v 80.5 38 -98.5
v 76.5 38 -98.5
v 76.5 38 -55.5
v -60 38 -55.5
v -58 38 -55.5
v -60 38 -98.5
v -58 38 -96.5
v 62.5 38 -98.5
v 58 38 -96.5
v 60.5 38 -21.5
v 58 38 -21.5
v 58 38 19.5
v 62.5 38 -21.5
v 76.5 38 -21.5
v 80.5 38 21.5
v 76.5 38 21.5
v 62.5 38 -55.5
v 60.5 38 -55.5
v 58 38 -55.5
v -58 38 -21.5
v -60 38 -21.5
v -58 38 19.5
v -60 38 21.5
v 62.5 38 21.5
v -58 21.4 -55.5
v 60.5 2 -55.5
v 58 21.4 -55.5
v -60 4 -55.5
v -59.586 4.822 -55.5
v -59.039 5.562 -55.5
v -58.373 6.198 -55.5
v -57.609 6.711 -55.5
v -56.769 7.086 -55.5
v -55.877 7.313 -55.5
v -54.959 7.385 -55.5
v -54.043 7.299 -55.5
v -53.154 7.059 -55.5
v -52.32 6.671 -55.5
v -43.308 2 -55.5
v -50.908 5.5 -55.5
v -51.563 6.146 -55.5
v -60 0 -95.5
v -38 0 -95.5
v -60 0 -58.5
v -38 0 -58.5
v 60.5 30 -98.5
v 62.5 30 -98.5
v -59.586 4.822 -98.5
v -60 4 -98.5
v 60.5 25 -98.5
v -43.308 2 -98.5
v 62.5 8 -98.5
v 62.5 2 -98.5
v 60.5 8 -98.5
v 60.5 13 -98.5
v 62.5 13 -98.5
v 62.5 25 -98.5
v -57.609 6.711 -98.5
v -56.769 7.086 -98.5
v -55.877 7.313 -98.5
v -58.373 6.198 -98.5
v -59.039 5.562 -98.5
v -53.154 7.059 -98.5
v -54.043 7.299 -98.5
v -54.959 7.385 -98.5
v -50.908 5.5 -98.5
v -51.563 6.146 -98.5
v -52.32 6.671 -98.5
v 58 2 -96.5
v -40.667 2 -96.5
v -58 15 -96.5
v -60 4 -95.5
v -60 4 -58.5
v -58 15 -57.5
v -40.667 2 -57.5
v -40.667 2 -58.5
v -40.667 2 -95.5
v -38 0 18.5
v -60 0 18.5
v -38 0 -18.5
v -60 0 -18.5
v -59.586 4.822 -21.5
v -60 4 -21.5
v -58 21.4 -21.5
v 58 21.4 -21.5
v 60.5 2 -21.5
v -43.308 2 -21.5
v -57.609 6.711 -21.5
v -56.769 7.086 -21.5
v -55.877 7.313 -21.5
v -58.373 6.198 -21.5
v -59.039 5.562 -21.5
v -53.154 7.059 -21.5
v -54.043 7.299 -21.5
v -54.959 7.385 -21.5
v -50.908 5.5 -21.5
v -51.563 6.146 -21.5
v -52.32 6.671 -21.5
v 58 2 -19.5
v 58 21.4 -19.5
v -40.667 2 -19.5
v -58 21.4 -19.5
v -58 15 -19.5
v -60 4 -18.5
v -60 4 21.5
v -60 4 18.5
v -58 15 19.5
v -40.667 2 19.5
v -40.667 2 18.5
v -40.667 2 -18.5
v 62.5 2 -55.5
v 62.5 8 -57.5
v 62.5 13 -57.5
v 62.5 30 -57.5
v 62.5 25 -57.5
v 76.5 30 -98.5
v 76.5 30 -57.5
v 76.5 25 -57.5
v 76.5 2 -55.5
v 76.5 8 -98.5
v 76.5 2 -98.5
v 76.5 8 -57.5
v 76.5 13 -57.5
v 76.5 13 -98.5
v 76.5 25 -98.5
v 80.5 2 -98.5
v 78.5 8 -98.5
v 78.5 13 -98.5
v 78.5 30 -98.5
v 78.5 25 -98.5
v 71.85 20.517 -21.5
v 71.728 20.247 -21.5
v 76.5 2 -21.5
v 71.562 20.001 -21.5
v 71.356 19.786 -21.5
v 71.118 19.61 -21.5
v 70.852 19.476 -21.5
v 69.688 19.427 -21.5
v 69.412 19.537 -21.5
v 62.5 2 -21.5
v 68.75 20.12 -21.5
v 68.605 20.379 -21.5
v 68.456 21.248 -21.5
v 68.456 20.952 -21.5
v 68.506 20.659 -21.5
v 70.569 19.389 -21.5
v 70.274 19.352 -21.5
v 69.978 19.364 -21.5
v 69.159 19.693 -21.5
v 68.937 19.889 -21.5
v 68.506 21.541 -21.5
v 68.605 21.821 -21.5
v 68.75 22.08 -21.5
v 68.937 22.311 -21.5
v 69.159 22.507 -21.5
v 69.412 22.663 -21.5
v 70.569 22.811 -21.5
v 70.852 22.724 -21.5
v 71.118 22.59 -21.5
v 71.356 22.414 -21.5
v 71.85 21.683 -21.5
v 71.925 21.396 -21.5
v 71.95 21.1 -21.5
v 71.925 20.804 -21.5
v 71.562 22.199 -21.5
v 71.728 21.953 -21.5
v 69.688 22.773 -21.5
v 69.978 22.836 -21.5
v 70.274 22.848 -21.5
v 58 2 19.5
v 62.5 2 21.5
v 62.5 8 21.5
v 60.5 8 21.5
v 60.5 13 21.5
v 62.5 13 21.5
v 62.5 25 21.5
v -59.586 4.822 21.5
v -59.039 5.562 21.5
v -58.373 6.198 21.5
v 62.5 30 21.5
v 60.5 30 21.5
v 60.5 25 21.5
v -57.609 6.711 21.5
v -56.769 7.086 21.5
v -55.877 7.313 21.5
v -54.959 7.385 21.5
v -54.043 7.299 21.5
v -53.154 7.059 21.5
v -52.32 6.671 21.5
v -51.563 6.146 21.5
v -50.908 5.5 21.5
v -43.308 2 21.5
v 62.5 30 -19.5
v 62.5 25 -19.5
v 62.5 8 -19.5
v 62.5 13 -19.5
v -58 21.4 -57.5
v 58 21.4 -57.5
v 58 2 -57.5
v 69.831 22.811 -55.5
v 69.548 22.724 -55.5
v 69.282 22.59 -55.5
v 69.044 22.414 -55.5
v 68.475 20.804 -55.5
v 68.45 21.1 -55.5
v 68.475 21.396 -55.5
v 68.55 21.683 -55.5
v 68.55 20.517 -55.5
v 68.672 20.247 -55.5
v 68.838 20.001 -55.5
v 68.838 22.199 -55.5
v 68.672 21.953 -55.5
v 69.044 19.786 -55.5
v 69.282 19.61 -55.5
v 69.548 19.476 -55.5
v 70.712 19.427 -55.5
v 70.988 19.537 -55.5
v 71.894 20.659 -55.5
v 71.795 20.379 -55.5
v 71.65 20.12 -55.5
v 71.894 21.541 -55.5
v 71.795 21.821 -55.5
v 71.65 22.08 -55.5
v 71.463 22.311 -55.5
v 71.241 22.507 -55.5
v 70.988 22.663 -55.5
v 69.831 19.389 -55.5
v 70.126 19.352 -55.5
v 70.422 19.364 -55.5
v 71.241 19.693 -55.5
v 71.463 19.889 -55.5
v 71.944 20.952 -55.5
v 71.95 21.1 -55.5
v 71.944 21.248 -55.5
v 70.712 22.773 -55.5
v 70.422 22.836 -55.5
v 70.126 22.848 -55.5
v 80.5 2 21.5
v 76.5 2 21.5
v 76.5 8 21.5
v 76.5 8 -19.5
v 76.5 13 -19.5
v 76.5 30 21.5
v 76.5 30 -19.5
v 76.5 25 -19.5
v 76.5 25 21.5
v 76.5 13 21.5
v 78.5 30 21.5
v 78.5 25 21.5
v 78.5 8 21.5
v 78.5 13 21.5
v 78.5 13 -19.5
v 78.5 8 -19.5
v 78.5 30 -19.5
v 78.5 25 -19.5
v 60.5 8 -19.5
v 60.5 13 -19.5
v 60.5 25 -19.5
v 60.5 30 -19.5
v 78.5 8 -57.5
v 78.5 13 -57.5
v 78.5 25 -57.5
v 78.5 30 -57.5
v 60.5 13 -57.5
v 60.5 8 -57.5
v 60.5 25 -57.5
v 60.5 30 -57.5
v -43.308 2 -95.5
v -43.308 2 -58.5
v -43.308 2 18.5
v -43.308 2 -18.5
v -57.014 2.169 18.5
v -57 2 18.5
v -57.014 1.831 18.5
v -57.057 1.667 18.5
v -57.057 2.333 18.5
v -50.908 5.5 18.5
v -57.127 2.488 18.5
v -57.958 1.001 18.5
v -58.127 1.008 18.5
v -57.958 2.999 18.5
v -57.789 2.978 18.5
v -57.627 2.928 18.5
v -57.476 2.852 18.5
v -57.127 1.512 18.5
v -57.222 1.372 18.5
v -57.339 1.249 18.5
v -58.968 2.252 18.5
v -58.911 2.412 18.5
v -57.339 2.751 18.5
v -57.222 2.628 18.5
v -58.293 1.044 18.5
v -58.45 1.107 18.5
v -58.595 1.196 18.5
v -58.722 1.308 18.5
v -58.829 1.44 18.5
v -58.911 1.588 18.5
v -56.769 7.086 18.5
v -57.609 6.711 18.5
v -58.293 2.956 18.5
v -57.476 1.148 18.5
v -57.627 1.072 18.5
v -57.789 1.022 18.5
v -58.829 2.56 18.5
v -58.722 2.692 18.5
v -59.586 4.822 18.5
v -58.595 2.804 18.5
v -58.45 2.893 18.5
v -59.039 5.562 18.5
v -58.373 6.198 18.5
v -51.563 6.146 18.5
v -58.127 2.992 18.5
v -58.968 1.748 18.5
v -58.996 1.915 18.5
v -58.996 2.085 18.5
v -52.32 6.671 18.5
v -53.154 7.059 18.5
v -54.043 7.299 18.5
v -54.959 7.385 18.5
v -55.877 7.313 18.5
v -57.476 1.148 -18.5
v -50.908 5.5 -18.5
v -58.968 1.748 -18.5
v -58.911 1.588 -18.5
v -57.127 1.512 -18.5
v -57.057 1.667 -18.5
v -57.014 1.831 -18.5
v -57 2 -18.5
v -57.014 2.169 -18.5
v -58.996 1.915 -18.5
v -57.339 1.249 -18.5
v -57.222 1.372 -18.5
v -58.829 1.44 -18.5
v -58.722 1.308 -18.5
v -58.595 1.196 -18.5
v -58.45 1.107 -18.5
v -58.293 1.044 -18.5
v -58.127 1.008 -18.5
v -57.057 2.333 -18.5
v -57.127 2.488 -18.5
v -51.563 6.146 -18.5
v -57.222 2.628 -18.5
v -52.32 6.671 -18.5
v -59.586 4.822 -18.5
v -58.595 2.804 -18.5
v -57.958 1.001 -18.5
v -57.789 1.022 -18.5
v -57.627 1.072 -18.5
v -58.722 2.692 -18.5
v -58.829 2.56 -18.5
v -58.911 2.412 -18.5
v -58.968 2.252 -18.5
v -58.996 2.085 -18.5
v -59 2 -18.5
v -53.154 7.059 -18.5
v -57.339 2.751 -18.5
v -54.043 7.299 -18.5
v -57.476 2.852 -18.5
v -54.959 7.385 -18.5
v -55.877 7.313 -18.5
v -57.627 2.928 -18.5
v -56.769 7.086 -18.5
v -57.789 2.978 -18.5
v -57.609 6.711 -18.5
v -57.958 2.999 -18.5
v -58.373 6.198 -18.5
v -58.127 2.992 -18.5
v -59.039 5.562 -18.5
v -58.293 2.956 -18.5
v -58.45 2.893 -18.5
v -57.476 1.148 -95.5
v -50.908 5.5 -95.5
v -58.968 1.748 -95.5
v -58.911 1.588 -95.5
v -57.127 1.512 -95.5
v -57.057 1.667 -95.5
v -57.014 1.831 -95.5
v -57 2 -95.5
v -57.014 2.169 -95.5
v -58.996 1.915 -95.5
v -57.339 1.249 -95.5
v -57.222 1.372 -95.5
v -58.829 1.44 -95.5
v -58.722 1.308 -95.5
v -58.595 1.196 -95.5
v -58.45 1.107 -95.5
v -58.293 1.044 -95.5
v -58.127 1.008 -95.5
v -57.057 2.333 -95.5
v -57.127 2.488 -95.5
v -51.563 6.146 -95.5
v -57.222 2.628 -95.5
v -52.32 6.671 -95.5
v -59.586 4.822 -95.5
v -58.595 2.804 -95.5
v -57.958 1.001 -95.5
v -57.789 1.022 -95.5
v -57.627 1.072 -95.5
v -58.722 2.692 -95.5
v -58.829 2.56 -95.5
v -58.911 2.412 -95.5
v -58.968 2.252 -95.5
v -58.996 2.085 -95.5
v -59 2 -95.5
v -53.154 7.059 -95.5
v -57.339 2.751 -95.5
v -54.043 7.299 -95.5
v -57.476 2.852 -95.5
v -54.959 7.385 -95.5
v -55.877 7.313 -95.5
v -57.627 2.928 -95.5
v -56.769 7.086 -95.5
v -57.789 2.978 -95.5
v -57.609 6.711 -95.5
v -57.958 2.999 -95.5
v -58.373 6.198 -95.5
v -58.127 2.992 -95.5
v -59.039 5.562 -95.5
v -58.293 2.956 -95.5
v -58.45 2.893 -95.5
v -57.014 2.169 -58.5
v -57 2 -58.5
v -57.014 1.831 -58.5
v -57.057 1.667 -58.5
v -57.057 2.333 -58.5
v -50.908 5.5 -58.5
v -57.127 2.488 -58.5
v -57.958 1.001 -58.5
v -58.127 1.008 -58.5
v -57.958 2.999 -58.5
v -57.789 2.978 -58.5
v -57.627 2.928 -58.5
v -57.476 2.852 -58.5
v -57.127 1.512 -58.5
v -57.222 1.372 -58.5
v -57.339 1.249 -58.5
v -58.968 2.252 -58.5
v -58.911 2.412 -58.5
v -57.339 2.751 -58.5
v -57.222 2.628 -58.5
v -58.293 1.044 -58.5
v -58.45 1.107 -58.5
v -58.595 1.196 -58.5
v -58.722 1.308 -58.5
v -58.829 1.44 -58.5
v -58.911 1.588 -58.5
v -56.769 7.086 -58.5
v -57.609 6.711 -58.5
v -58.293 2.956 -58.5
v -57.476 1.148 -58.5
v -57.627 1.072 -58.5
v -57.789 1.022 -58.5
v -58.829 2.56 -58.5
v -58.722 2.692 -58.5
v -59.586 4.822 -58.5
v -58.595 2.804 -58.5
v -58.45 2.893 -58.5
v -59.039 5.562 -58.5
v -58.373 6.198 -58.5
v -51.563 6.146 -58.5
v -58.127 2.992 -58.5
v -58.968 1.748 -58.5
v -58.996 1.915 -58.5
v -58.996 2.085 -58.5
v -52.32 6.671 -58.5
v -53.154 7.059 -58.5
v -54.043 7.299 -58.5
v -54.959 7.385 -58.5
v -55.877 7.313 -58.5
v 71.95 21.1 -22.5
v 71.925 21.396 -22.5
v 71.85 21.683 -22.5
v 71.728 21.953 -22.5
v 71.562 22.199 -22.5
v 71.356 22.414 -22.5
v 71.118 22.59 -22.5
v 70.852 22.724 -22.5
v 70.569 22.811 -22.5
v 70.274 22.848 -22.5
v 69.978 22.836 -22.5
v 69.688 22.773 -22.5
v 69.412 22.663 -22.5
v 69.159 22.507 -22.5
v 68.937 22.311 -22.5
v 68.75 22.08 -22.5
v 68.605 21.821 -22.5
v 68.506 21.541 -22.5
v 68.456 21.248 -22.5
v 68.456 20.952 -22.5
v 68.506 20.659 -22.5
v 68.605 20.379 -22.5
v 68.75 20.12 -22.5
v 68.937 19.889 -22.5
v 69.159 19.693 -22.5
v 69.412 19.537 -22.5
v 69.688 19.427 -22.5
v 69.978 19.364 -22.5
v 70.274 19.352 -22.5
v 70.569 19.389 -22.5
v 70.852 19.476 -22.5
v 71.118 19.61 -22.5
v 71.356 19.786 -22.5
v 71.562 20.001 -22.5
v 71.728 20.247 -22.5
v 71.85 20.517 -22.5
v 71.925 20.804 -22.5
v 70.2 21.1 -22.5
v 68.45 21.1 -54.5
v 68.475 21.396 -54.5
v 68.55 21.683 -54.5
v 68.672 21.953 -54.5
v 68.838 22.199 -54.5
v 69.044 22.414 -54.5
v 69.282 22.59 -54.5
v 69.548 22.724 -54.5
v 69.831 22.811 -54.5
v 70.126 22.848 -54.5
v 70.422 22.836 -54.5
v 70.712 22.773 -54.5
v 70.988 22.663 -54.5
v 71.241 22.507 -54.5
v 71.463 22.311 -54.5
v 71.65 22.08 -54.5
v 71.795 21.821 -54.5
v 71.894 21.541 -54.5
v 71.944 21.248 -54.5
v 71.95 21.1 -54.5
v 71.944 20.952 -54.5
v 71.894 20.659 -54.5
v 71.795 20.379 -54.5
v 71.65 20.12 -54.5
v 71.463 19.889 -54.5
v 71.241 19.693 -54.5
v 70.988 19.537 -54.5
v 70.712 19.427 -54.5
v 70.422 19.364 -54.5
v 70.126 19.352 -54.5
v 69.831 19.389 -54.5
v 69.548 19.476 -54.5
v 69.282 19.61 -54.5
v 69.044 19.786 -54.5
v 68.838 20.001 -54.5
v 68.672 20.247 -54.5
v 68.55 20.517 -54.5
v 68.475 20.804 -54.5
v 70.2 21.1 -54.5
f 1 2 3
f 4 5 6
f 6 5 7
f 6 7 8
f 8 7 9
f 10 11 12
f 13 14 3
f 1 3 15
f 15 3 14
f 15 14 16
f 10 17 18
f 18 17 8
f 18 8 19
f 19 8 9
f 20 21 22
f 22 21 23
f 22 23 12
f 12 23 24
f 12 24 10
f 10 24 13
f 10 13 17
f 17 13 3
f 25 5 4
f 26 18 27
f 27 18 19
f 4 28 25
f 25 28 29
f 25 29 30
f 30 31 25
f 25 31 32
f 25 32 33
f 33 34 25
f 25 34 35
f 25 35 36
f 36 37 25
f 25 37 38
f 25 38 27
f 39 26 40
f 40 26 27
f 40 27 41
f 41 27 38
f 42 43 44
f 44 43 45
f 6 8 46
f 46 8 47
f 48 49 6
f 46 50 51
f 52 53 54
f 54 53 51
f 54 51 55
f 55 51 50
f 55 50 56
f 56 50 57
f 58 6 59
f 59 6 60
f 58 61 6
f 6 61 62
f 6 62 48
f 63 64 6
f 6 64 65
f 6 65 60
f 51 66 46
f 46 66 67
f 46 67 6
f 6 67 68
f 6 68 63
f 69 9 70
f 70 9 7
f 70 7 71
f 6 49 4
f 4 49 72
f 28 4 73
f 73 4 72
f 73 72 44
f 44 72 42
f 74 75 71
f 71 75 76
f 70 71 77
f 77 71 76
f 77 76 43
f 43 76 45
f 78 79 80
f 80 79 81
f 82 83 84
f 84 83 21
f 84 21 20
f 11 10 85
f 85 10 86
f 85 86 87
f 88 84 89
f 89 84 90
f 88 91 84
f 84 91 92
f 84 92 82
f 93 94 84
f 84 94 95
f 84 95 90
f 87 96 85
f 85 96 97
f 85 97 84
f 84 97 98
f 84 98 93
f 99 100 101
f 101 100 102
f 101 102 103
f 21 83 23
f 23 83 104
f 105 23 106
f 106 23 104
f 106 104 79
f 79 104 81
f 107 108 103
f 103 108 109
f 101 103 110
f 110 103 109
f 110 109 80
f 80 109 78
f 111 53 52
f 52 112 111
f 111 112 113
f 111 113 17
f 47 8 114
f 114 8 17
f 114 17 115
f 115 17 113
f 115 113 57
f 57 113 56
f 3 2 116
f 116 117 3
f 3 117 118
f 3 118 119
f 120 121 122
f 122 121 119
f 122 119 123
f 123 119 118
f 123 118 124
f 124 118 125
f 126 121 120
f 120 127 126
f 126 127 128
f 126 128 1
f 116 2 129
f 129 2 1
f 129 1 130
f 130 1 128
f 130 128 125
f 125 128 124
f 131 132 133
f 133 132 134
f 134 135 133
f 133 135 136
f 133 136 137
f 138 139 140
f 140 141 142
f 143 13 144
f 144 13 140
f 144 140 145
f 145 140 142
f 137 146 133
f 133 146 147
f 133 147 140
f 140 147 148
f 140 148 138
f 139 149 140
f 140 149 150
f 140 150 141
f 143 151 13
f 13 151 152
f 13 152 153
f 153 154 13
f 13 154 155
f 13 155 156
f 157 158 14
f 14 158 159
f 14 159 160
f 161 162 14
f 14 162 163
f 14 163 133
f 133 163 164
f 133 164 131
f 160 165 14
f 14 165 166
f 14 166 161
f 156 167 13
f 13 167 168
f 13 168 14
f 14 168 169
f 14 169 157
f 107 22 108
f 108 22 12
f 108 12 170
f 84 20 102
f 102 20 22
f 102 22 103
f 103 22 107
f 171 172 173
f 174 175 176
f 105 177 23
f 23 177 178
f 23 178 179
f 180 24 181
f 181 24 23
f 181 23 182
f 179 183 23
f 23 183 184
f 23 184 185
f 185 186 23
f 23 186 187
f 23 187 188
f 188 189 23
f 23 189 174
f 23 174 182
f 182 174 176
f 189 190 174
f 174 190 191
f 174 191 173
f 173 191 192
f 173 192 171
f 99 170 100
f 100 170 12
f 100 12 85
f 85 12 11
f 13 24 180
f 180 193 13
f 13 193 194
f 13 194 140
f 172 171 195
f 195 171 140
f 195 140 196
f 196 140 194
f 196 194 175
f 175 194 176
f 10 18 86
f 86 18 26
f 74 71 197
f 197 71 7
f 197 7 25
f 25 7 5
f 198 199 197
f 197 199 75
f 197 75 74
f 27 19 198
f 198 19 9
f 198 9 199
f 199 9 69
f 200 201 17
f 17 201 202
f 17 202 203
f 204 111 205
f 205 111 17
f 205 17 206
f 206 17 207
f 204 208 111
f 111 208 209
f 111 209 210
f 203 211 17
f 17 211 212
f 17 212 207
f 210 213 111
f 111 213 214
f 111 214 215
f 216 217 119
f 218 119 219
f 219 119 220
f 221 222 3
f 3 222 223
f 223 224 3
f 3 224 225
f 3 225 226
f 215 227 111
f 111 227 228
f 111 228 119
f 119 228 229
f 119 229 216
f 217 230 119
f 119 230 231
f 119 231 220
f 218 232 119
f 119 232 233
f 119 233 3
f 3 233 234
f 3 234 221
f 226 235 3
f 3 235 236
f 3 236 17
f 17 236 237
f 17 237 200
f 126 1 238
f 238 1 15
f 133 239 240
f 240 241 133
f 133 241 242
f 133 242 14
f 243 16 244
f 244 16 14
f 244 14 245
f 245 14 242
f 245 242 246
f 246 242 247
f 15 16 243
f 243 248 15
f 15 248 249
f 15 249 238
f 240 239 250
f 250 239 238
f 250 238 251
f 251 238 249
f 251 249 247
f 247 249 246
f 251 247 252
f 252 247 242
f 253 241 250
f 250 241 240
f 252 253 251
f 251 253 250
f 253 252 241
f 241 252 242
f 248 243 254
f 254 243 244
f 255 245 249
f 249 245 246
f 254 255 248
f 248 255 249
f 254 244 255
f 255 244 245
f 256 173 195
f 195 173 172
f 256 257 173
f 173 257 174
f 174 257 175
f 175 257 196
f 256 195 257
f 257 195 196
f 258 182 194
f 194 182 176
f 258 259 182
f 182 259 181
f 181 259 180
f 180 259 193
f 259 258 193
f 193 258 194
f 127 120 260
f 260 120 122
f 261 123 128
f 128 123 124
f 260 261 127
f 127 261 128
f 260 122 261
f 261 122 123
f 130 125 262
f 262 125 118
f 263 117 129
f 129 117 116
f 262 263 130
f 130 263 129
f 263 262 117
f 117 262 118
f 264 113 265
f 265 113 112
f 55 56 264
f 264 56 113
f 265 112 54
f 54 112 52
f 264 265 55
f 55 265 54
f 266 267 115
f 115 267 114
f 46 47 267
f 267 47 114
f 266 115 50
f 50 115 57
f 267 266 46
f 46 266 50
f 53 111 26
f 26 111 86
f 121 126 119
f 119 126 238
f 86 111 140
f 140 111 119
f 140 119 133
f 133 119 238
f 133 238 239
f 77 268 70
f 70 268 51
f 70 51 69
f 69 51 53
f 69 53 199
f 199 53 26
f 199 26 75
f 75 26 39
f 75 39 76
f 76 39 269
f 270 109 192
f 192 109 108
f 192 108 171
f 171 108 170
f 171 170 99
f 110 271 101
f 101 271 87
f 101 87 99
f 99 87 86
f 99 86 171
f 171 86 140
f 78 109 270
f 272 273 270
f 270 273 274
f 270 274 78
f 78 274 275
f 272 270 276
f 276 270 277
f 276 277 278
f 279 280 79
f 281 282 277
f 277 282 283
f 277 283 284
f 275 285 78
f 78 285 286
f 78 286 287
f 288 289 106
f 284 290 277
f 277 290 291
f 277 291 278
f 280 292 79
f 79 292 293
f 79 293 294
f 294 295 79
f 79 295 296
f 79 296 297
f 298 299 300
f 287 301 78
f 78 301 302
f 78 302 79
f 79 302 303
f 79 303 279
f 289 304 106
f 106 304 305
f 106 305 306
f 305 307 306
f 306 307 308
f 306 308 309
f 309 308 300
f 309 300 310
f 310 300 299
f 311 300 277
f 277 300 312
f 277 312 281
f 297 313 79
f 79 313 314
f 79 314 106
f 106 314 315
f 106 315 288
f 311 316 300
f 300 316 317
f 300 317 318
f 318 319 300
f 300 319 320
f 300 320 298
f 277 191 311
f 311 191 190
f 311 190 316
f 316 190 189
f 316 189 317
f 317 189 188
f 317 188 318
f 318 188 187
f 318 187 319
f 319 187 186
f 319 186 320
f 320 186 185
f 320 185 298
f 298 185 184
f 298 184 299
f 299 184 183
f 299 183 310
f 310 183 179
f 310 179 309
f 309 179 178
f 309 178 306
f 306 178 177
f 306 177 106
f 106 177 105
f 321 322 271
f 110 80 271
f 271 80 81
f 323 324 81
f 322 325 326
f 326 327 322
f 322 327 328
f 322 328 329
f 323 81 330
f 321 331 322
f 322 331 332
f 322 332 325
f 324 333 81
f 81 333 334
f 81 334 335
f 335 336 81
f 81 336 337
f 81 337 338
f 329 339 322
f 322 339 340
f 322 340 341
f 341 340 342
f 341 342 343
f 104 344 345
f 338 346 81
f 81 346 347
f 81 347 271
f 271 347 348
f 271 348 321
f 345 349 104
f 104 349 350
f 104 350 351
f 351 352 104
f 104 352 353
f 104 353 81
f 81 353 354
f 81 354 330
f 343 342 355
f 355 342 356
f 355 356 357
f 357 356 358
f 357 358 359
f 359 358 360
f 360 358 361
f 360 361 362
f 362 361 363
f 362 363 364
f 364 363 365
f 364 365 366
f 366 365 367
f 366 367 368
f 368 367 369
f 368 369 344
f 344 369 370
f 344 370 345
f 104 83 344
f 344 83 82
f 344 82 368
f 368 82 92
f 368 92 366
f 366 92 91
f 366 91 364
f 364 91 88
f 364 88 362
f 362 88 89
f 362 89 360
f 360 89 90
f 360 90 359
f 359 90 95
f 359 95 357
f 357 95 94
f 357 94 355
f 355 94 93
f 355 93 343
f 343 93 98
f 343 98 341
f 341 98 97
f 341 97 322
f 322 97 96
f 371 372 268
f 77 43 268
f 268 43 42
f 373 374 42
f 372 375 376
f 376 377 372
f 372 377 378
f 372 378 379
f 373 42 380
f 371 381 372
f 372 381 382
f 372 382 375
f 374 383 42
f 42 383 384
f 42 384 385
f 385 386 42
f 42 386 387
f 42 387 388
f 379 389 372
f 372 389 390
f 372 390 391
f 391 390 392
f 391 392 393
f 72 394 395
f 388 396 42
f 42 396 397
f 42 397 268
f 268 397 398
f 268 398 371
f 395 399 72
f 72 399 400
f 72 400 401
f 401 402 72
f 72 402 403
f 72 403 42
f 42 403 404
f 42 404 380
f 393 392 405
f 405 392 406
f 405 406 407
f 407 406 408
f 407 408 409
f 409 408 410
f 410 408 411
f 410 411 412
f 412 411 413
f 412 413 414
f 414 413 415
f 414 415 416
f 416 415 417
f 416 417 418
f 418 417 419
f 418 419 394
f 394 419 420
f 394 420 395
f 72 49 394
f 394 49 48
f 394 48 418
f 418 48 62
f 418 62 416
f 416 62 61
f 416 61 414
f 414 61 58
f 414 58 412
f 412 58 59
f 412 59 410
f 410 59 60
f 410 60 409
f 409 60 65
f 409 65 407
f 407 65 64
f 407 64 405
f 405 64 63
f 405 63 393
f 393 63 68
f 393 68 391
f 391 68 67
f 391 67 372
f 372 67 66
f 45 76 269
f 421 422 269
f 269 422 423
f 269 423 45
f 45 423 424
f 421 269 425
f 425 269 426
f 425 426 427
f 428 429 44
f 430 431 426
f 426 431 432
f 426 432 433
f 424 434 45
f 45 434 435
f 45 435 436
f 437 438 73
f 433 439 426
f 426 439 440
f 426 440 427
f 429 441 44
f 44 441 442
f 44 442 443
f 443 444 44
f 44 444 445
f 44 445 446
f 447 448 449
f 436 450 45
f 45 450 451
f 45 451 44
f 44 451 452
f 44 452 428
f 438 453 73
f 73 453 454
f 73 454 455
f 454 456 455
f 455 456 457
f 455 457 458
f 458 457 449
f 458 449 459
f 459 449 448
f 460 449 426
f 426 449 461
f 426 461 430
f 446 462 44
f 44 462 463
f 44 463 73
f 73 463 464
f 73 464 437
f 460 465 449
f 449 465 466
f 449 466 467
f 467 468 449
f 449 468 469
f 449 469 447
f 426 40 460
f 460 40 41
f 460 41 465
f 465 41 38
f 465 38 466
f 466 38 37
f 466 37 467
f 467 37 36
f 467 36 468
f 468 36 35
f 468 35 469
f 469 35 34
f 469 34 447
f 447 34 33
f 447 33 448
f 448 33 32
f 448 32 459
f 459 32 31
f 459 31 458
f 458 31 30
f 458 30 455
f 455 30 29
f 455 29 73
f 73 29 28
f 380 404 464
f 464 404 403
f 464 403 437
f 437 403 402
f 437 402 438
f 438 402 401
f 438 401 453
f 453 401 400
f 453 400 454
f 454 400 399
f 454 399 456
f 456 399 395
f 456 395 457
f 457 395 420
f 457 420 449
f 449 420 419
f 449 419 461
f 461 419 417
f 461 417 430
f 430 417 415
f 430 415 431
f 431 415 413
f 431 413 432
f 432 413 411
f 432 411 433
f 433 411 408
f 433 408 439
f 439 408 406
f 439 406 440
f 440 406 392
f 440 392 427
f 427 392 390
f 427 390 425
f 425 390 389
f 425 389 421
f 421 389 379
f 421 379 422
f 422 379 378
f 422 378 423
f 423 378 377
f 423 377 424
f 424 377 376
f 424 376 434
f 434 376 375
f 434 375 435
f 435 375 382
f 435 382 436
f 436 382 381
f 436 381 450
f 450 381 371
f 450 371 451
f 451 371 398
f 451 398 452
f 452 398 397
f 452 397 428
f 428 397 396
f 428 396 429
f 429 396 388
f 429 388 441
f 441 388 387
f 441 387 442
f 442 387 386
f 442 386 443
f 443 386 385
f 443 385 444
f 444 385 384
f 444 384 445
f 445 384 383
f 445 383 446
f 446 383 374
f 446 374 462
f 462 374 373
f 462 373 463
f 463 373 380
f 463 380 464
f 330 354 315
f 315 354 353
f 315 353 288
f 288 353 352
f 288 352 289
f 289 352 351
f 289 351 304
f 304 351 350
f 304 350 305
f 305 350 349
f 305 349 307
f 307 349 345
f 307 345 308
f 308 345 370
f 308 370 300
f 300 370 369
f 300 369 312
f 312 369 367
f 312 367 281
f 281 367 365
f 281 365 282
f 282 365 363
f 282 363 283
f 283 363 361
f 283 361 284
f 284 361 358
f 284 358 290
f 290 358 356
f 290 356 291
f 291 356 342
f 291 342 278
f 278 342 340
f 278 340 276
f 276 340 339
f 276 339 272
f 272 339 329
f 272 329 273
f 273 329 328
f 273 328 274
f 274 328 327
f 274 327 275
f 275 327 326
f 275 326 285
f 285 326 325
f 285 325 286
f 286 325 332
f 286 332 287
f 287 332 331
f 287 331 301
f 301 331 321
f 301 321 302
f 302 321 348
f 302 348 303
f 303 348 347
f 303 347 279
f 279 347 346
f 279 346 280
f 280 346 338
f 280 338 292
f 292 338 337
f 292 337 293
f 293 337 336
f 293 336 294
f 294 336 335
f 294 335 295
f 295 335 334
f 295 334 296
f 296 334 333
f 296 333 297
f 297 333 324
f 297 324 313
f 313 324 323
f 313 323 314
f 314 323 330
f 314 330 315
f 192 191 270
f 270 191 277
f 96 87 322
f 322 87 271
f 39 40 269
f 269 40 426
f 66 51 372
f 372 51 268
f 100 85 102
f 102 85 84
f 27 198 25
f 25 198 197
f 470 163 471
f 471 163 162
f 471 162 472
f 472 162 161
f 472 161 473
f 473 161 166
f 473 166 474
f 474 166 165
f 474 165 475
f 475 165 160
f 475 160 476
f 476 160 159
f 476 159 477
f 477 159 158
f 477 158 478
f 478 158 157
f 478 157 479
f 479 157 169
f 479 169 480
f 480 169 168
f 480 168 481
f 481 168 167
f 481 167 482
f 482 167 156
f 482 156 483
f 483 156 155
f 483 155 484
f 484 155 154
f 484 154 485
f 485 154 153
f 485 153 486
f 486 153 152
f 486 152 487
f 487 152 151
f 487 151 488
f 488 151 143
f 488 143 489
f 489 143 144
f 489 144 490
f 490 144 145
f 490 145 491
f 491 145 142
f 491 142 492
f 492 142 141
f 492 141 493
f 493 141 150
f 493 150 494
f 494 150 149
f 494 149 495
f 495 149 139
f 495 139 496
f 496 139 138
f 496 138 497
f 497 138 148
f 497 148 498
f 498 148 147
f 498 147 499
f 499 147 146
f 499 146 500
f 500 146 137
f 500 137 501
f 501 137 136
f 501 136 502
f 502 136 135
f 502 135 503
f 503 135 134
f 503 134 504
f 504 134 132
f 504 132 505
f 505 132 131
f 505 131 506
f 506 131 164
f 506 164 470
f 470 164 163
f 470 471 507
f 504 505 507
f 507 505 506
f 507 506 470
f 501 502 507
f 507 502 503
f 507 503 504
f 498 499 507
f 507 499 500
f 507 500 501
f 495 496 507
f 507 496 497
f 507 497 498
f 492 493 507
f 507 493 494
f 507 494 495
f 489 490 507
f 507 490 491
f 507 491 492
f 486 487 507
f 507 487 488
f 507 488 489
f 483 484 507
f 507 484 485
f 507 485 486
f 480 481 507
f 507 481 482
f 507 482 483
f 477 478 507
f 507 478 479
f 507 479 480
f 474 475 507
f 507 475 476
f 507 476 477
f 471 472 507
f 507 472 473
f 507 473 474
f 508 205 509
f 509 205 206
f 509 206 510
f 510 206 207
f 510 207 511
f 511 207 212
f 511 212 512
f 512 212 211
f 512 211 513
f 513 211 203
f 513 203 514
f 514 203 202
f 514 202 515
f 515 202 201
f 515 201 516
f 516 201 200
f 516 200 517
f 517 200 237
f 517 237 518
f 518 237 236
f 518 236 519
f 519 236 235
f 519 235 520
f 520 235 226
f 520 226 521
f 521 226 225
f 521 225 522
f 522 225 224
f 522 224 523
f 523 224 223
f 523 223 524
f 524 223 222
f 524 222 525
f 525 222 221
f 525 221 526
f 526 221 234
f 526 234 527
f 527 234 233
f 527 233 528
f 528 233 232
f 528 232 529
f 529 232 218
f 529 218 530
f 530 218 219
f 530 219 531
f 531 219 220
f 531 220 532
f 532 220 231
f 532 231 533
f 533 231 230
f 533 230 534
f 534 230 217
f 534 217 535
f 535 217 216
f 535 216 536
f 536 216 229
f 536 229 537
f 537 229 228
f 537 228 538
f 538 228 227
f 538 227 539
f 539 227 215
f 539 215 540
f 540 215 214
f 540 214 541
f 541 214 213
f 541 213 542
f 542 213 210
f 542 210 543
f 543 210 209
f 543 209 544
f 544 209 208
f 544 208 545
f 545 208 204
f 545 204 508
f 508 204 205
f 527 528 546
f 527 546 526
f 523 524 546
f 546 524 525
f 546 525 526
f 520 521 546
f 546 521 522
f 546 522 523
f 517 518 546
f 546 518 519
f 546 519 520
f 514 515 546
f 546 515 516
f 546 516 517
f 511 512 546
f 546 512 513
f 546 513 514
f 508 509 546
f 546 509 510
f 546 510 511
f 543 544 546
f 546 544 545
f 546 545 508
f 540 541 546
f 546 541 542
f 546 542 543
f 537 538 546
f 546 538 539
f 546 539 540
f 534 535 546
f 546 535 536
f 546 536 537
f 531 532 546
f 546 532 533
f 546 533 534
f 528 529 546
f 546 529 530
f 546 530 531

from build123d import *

# Parameters (mm, degrees)
SKETCH2_W            = 120
SKETCH2_H            = 43
BOSS_EXTRUDE1_DEPTH  = 38
SKETCH3_W            = 116
SKETCH3_H            = 39
CUT_EXTRUDE1_DEPTH   = 38
BOSS_EXTRUDE2_DEPTH  = 39
SKETCH5_W            = 43
SKETCH5_H            = 38
BOSS_EXTRUDE3_DEPTH  = 2.5
SKETCH6_W            = 2
SKETCH6_H            = 38
BOSS_EXTRUDE4_DEPTH  = 17
SKETCH7_W            = 34
SKETCH7_H            = 38
BOSS_EXTRUDE5_DEPTH  = 18
SKETCH8_W            = 4
SKETCH8_H            = 38
BOSS_EXTRUDE6_DEPTH  = 43
SKETCH9_W            = 18
SKETCH9_H            = 5
CUT_EXTRUDE2_DEPTH   = 41
SKETCH11_W           = 120
SKETCH11_H           = 2
CUT_EXTRUDE3_DEPTH   = 118.5
CUT_EXTRUDE4_DEPTH   = 3
MIRROR4_COPY_1_DEPTH = 3
CUT_EXTRUDE5_START   = -114
SKETCH13_R           = 1
CUT_EXTRUDE5_DEPTH   = 114
SKETCH14_W           = 116
SKETCH14_H           = 2
CUT_EXTRUDE6_DEPTH   = 16.6
SKETCH15_R           = 1.75
CUT_EXTRUDE7_DEPTH   = 1


with BuildPart() as part:
    # Sketch2 → Boss-Extrude1 (new body)
    with BuildSketch(Plane(origin=(0, 0, 0), x_dir=(1, 0, 0), z_dir=(0, 1, 0))):
        Rectangle(SKETCH2_W, SKETCH2_H)
    extrude(amount=BOSS_EXTRUDE1_DEPTH)

    # Sketch3 → Cut-Extrude1 (cut)
    with BuildSketch(Plane(origin=(0, 38, 0), x_dir=(1, 0, 0), z_dir=(0, 1, 0))):
        Rectangle(SKETCH3_W, SKETCH3_H)
    extrude(amount=-CUT_EXTRUDE1_DEPTH, mode=Mode.SUBTRACT)

    # Sketch4 → Boss-Extrude2 (add)
    with BuildSketch(Plane.XY.offset(-19.5)):
        Polygon((-58, 0), (-58, 15), (-38, 0), align=None)
    extrude(amount=BOSS_EXTRUDE2_DEPTH)

    # Sketch5 → Boss-Extrude3 (add)
    with BuildSketch(Plane(origin=(60, 0, 0), x_dir=(0, 0, -1), z_dir=(1, 0, 0))):
        with Locations((0, 19)):
            Rectangle(SKETCH5_W, SKETCH5_H)
    extrude(amount=BOSS_EXTRUDE3_DEPTH)

    # Sketch6 → Boss-Extrude4 (add)
    with BuildSketch(Plane(origin=(0, 0, -21.5), x_dir=(-1, 0, 0), z_dir=(0, 0, -1))):
        with Locations((-61.5, 19)):
            Rectangle(SKETCH6_W, SKETCH6_H)
    extrude(amount=BOSS_EXTRUDE4_DEPTH)

    # Mirror1: part across plane


with BuildPart() as part_1:
    add(part.part)
    add(part.part.mirror(Plane(origin=(0, 0, -38.5), x_dir=(1, 0, 0), z_dir=(0, 0, -1))))

    # Sketch7 → Boss-Extrude5 (add)
    with BuildSketch(Plane(origin=(62.5, 0, 0), x_dir=(0, 0, -1), z_dir=(1, 0, 0))):
        with Locations((38.5, 19)):
            Rectangle(SKETCH7_W, SKETCH7_H)
    extrude(amount=BOSS_EXTRUDE5_DEPTH)

    # Sketch8 → Boss-Extrude6 (add)
    with BuildSketch(Plane.XY.offset(-21.5)):
        with Locations((78.5, 19)):
            Rectangle(SKETCH8_W, SKETCH8_H)
    boss_extrude6 = extrude(amount=BOSS_EXTRUDE6_DEPTH)

    # Sketch9 → Cut-Extrude2 (cut)
    with BuildSketch(Plane.XY.offset(21.5)):
        with Locations((69.5, 27.5)):
            Rectangle(SKETCH9_W, SKETCH9_H)
        with Locations((69.5, 10.5)):
            Rectangle(SKETCH9_W, SKETCH9_H)
    cut_extrude2 = extrude(amount=-CUT_EXTRUDE2_DEPTH, mode=Mode.SUBTRACT)

    # Mirror2: Boss-Extrude6, Cut-Extrude2 across plane
    add(boss_extrude6.mirror(Plane(origin=(0, 0, -38.5), x_dir=(1, 0, 0), z_dir=(0, 0, -1))))
    add(cut_extrude2.mirror(Plane(origin=(0, 0, -38.5), x_dir=(1, 0, 0), z_dir=(0, 0, -1))), mode=Mode.SUBTRACT)

    # Sketch11 → Cut-Extrude3 (cut)
    with BuildSketch(Plane(origin=(80.5, 0, 0), x_dir=(0, 0, -1), z_dir=(1, 0, 0))):
        with Locations((38.5, 1)):
            Rectangle(SKETCH11_W, SKETCH11_H)
    extrude(amount=-CUT_EXTRUDE3_DEPTH, mode=Mode.SUBTRACT)

    # Sketch12 → Cut-Extrude4 (cut)
    with BuildSketch(Plane.XY.offset(21.5)):
        with BuildLine():
            Line((-38, 2), (-49.614835193, 2))
            ThreePointArc((-49.614835193, 2), (-56.018375168, 7.287996976), (-60, 0))
            Line((-60, 0), (-38, 0))
            Line((-38, 0), (-38, 2))
        make_face()
    cut_extrude4 = extrude(amount=-CUT_EXTRUDE4_DEPTH, mode=Mode.SUBTRACT)

    # Mirror3: Cut-Extrude4 across plane
    add(cut_extrude4.mirror(Plane.XY), mode=Mode.SUBTRACT)

    # Mirror4: Cut-Extrude4 across plane
    add(cut_extrude4.mirror(Plane(origin=(0, 0, -38.5), x_dir=(1, 0, 0), z_dir=(0, 0, -1))), mode=Mode.SUBTRACT)

    # Mirror4 copy 1 sketch → Mirror4 copy 1 (cut)
    with BuildSketch(Plane.XY.offset(-55.5)):
        with BuildLine():
            Line((-38, 2), (-49.614835193, 2))
            ThreePointArc((-49.614835193, 2), (-56.018375168, 7.287996976), (-60, 0))
            Line((-60, 0), (-38, 0))
            Line((-38, 0), (-38, 2))
        make_face()
    extrude(amount=-MIRROR4_COPY_1_DEPTH, mode=Mode.SUBTRACT)

    # Sketch13 → Cut-Extrude5 (cut)
    with BuildSketch(Plane.XY.offset(18.5).offset(CUT_EXTRUDE5_START)):
        with Locations((-58, 2)):
            Circle(SKETCH13_R)
    extrude(amount=CUT_EXTRUDE5_DEPTH, mode=Mode.SUBTRACT)

    # Chamfer1
    # the kernel refuses this chamfer: 10 mm, written as the material it takes off along each edge
    with BuildSketch(Plane(origin=(-49.614835193, 2, 38.180669666), x_dir=(-0.41152080336556635, 0.9114003666870882, 0), z_dir=(0, 0, -1))) as chamfer1_piece_1:
        with BuildLine():
            Line((4.024103798, 0), (-2.897424879, 6.010331734))
            Line((-2.897424879, 6.010331734), (-3.079704953, 5.928027573))
            ThreePointArc((-3.079704953, 5.928027573), (-1.554736759, 2.957293148), (-0.182280073, -0.082304161))
            Line((-0.182280073, -0.082304161), (0.082304161, -0.182280073))
            ThreePointArc((0.082304161, -0.182280073), (2.000716354, 0.27264804), (3.968173362, -0.192020276))
            Line((3.968173362, -0.192020276), (4.024103798, 0))
        make_face()
    extrude(amount=19.680669666, mode=Mode.SUBTRACT)

    # Chamfer2
    # the kernel refuses this chamfer: 10 mm, written as the material it takes off along each edge
    with BuildSketch(Plane(origin=(-49.614835193, 2, -38.180669666), x_dir=(0.9996854583228201, -0.0250795617564035, 0), z_dir=(0, 0, 1))) as chamfer2_piece_1:
        with BuildLine():
            Line((6.672267866, 0), (-1.747462586, 3.624884258))
            Line((-1.747462586, 3.624884258), (-1.896145364, 3.491117927))
            ThreePointArc((-1.896145364, 3.491117927), (-0.623209418, 1.920628258), (-0.199937092, -0.005015912))
            Line((-0.199937092, -0.005015912), (0.005015912, -0.199937092))
            ThreePointArc((0.005015912, -0.199937092), (3.339051469, -0.116294632), (6.677283779, -0.199937092))
            Line((6.677283779, -0.199937092), (6.672267866, 0))
        make_face()
    extrude(amount=19.680669666, mode=Mode.SUBTRACT)

    # Chamfer3
    # the kernel refuses this chamfer: 10 mm, written as the material it takes off along each edge
    with BuildSketch(Plane(origin=(-49.614835193, 2, -38.819330334), x_dir=(0.9996854583228201, -0.02507956175640344, 0), z_dir=(0, 0, -1))) as chamfer3_piece_1:
        with BuildLine():
            Line((6.672267866, 0), (-1.747462586, -3.624884258))
            Line((-1.747462586, -3.624884258), (-1.896145364, -3.491117927))
            ThreePointArc((-1.896145364, -3.491117927), (-0.623209418, -1.920628258), (-0.199937092, 0.005015912))
            Line((-0.199937092, 0.005015912), (0.005015912, 0.199937092))
            ThreePointArc((0.005015912, 0.199937092), (3.339051469, 0.116294632), (6.677283779, 0.199937092))
            Line((6.677283779, 0.199937092), (6.672267866, 0))
        make_face()
    extrude(amount=19.680669666, mode=Mode.SUBTRACT)

    # Chamfer4
    # the kernel refuses this chamfer: 10 mm, written as the material it takes off along each edge
    with BuildSketch(Plane(origin=(-49.614835193, 2, -115.180669666), x_dir=(0.9996854583228201, -0.0250795617564035, 0), z_dir=(0, 0, 1))) as chamfer4_piece_1:
        with BuildLine():
            Line((6.672267866, 0), (-1.747462586, 3.624884258))
            Line((-1.747462586, 3.624884258), (-1.896145364, 3.491117927))
            ThreePointArc((-1.896145364, 3.491117927), (-0.623209418, 1.920628258), (-0.199937092, -0.005015912))
            Line((-0.199937092, -0.005015912), (0.005015912, -0.199937092))
            ThreePointArc((0.005015912, -0.199937092), (3.339051469, -0.116294632), (6.677283779, -0.199937092))
            Line((6.677283779, -0.199937092), (6.672267866, 0))
        make_face()
    extrude(amount=19.680669666, mode=Mode.SUBTRACT)

    # Sketch14 → Cut-Extrude6 (cut)
    with BuildSketch(Plane(origin=(0, 38, 0), x_dir=(1, 0, 0), z_dir=(0, 1, 0))):
        with Locations((0, 20.5)):
            Rectangle(SKETCH14_W, SKETCH14_H)
    cut_extrude6 = extrude(amount=-CUT_EXTRUDE6_DEPTH, mode=Mode.SUBTRACT)

    # Mirror5: Cut-Extrude6 across plane
    add(cut_extrude6.mirror(Plane(origin=(0, 0, -38.5), x_dir=(1, 0, 0), z_dir=(0, 0, -1))), mode=Mode.SUBTRACT)

    # Sketch15 → Cut-Extrude7 (cut)
    with BuildSketch(Plane.XY.offset(-21.5)):
        with Locations((70.2, 21.1)):
            Circle(SKETCH15_R)
    cut_extrude7 = extrude(amount=-CUT_EXTRUDE7_DEPTH, mode=Mode.SUBTRACT)

    # Mirror6: Cut-Extrude7 across plane
    add(cut_extrude7.mirror(Plane(origin=(0, 0, -38.5), x_dir=(1, 0, 0), z_dir=(0, 0, -1))), mode=Mode.SUBTRACT)


solid = part_1.part
